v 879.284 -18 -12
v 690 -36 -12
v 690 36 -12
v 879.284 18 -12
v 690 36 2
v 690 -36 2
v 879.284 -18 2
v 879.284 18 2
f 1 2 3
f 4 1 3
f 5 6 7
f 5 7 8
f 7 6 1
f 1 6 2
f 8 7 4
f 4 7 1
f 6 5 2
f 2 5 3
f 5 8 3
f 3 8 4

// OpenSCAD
polyhedron(points=[[690.0, -36.0, -12.0], [879.283887, -18.0, -12.0], [879.283887, 18.0, -12.0], [690.0, 36.0, -12.0], [690.0, -36.0, 2.0], [879.283887, -18.0, 2.0], [879.283887, 18.0, 2.0], [690.0, 36.0, 2.0]], faces=[[1, 0, 3], [2, 1, 3], [7, 4, 5], [7, 5, 6], [5, 4, 1], [1, 4, 0], [6, 5, 2], [2, 5, 1], [4, 7, 0], [0, 7, 3], [7, 6, 3], [3, 6, 2]], convexity=30);
